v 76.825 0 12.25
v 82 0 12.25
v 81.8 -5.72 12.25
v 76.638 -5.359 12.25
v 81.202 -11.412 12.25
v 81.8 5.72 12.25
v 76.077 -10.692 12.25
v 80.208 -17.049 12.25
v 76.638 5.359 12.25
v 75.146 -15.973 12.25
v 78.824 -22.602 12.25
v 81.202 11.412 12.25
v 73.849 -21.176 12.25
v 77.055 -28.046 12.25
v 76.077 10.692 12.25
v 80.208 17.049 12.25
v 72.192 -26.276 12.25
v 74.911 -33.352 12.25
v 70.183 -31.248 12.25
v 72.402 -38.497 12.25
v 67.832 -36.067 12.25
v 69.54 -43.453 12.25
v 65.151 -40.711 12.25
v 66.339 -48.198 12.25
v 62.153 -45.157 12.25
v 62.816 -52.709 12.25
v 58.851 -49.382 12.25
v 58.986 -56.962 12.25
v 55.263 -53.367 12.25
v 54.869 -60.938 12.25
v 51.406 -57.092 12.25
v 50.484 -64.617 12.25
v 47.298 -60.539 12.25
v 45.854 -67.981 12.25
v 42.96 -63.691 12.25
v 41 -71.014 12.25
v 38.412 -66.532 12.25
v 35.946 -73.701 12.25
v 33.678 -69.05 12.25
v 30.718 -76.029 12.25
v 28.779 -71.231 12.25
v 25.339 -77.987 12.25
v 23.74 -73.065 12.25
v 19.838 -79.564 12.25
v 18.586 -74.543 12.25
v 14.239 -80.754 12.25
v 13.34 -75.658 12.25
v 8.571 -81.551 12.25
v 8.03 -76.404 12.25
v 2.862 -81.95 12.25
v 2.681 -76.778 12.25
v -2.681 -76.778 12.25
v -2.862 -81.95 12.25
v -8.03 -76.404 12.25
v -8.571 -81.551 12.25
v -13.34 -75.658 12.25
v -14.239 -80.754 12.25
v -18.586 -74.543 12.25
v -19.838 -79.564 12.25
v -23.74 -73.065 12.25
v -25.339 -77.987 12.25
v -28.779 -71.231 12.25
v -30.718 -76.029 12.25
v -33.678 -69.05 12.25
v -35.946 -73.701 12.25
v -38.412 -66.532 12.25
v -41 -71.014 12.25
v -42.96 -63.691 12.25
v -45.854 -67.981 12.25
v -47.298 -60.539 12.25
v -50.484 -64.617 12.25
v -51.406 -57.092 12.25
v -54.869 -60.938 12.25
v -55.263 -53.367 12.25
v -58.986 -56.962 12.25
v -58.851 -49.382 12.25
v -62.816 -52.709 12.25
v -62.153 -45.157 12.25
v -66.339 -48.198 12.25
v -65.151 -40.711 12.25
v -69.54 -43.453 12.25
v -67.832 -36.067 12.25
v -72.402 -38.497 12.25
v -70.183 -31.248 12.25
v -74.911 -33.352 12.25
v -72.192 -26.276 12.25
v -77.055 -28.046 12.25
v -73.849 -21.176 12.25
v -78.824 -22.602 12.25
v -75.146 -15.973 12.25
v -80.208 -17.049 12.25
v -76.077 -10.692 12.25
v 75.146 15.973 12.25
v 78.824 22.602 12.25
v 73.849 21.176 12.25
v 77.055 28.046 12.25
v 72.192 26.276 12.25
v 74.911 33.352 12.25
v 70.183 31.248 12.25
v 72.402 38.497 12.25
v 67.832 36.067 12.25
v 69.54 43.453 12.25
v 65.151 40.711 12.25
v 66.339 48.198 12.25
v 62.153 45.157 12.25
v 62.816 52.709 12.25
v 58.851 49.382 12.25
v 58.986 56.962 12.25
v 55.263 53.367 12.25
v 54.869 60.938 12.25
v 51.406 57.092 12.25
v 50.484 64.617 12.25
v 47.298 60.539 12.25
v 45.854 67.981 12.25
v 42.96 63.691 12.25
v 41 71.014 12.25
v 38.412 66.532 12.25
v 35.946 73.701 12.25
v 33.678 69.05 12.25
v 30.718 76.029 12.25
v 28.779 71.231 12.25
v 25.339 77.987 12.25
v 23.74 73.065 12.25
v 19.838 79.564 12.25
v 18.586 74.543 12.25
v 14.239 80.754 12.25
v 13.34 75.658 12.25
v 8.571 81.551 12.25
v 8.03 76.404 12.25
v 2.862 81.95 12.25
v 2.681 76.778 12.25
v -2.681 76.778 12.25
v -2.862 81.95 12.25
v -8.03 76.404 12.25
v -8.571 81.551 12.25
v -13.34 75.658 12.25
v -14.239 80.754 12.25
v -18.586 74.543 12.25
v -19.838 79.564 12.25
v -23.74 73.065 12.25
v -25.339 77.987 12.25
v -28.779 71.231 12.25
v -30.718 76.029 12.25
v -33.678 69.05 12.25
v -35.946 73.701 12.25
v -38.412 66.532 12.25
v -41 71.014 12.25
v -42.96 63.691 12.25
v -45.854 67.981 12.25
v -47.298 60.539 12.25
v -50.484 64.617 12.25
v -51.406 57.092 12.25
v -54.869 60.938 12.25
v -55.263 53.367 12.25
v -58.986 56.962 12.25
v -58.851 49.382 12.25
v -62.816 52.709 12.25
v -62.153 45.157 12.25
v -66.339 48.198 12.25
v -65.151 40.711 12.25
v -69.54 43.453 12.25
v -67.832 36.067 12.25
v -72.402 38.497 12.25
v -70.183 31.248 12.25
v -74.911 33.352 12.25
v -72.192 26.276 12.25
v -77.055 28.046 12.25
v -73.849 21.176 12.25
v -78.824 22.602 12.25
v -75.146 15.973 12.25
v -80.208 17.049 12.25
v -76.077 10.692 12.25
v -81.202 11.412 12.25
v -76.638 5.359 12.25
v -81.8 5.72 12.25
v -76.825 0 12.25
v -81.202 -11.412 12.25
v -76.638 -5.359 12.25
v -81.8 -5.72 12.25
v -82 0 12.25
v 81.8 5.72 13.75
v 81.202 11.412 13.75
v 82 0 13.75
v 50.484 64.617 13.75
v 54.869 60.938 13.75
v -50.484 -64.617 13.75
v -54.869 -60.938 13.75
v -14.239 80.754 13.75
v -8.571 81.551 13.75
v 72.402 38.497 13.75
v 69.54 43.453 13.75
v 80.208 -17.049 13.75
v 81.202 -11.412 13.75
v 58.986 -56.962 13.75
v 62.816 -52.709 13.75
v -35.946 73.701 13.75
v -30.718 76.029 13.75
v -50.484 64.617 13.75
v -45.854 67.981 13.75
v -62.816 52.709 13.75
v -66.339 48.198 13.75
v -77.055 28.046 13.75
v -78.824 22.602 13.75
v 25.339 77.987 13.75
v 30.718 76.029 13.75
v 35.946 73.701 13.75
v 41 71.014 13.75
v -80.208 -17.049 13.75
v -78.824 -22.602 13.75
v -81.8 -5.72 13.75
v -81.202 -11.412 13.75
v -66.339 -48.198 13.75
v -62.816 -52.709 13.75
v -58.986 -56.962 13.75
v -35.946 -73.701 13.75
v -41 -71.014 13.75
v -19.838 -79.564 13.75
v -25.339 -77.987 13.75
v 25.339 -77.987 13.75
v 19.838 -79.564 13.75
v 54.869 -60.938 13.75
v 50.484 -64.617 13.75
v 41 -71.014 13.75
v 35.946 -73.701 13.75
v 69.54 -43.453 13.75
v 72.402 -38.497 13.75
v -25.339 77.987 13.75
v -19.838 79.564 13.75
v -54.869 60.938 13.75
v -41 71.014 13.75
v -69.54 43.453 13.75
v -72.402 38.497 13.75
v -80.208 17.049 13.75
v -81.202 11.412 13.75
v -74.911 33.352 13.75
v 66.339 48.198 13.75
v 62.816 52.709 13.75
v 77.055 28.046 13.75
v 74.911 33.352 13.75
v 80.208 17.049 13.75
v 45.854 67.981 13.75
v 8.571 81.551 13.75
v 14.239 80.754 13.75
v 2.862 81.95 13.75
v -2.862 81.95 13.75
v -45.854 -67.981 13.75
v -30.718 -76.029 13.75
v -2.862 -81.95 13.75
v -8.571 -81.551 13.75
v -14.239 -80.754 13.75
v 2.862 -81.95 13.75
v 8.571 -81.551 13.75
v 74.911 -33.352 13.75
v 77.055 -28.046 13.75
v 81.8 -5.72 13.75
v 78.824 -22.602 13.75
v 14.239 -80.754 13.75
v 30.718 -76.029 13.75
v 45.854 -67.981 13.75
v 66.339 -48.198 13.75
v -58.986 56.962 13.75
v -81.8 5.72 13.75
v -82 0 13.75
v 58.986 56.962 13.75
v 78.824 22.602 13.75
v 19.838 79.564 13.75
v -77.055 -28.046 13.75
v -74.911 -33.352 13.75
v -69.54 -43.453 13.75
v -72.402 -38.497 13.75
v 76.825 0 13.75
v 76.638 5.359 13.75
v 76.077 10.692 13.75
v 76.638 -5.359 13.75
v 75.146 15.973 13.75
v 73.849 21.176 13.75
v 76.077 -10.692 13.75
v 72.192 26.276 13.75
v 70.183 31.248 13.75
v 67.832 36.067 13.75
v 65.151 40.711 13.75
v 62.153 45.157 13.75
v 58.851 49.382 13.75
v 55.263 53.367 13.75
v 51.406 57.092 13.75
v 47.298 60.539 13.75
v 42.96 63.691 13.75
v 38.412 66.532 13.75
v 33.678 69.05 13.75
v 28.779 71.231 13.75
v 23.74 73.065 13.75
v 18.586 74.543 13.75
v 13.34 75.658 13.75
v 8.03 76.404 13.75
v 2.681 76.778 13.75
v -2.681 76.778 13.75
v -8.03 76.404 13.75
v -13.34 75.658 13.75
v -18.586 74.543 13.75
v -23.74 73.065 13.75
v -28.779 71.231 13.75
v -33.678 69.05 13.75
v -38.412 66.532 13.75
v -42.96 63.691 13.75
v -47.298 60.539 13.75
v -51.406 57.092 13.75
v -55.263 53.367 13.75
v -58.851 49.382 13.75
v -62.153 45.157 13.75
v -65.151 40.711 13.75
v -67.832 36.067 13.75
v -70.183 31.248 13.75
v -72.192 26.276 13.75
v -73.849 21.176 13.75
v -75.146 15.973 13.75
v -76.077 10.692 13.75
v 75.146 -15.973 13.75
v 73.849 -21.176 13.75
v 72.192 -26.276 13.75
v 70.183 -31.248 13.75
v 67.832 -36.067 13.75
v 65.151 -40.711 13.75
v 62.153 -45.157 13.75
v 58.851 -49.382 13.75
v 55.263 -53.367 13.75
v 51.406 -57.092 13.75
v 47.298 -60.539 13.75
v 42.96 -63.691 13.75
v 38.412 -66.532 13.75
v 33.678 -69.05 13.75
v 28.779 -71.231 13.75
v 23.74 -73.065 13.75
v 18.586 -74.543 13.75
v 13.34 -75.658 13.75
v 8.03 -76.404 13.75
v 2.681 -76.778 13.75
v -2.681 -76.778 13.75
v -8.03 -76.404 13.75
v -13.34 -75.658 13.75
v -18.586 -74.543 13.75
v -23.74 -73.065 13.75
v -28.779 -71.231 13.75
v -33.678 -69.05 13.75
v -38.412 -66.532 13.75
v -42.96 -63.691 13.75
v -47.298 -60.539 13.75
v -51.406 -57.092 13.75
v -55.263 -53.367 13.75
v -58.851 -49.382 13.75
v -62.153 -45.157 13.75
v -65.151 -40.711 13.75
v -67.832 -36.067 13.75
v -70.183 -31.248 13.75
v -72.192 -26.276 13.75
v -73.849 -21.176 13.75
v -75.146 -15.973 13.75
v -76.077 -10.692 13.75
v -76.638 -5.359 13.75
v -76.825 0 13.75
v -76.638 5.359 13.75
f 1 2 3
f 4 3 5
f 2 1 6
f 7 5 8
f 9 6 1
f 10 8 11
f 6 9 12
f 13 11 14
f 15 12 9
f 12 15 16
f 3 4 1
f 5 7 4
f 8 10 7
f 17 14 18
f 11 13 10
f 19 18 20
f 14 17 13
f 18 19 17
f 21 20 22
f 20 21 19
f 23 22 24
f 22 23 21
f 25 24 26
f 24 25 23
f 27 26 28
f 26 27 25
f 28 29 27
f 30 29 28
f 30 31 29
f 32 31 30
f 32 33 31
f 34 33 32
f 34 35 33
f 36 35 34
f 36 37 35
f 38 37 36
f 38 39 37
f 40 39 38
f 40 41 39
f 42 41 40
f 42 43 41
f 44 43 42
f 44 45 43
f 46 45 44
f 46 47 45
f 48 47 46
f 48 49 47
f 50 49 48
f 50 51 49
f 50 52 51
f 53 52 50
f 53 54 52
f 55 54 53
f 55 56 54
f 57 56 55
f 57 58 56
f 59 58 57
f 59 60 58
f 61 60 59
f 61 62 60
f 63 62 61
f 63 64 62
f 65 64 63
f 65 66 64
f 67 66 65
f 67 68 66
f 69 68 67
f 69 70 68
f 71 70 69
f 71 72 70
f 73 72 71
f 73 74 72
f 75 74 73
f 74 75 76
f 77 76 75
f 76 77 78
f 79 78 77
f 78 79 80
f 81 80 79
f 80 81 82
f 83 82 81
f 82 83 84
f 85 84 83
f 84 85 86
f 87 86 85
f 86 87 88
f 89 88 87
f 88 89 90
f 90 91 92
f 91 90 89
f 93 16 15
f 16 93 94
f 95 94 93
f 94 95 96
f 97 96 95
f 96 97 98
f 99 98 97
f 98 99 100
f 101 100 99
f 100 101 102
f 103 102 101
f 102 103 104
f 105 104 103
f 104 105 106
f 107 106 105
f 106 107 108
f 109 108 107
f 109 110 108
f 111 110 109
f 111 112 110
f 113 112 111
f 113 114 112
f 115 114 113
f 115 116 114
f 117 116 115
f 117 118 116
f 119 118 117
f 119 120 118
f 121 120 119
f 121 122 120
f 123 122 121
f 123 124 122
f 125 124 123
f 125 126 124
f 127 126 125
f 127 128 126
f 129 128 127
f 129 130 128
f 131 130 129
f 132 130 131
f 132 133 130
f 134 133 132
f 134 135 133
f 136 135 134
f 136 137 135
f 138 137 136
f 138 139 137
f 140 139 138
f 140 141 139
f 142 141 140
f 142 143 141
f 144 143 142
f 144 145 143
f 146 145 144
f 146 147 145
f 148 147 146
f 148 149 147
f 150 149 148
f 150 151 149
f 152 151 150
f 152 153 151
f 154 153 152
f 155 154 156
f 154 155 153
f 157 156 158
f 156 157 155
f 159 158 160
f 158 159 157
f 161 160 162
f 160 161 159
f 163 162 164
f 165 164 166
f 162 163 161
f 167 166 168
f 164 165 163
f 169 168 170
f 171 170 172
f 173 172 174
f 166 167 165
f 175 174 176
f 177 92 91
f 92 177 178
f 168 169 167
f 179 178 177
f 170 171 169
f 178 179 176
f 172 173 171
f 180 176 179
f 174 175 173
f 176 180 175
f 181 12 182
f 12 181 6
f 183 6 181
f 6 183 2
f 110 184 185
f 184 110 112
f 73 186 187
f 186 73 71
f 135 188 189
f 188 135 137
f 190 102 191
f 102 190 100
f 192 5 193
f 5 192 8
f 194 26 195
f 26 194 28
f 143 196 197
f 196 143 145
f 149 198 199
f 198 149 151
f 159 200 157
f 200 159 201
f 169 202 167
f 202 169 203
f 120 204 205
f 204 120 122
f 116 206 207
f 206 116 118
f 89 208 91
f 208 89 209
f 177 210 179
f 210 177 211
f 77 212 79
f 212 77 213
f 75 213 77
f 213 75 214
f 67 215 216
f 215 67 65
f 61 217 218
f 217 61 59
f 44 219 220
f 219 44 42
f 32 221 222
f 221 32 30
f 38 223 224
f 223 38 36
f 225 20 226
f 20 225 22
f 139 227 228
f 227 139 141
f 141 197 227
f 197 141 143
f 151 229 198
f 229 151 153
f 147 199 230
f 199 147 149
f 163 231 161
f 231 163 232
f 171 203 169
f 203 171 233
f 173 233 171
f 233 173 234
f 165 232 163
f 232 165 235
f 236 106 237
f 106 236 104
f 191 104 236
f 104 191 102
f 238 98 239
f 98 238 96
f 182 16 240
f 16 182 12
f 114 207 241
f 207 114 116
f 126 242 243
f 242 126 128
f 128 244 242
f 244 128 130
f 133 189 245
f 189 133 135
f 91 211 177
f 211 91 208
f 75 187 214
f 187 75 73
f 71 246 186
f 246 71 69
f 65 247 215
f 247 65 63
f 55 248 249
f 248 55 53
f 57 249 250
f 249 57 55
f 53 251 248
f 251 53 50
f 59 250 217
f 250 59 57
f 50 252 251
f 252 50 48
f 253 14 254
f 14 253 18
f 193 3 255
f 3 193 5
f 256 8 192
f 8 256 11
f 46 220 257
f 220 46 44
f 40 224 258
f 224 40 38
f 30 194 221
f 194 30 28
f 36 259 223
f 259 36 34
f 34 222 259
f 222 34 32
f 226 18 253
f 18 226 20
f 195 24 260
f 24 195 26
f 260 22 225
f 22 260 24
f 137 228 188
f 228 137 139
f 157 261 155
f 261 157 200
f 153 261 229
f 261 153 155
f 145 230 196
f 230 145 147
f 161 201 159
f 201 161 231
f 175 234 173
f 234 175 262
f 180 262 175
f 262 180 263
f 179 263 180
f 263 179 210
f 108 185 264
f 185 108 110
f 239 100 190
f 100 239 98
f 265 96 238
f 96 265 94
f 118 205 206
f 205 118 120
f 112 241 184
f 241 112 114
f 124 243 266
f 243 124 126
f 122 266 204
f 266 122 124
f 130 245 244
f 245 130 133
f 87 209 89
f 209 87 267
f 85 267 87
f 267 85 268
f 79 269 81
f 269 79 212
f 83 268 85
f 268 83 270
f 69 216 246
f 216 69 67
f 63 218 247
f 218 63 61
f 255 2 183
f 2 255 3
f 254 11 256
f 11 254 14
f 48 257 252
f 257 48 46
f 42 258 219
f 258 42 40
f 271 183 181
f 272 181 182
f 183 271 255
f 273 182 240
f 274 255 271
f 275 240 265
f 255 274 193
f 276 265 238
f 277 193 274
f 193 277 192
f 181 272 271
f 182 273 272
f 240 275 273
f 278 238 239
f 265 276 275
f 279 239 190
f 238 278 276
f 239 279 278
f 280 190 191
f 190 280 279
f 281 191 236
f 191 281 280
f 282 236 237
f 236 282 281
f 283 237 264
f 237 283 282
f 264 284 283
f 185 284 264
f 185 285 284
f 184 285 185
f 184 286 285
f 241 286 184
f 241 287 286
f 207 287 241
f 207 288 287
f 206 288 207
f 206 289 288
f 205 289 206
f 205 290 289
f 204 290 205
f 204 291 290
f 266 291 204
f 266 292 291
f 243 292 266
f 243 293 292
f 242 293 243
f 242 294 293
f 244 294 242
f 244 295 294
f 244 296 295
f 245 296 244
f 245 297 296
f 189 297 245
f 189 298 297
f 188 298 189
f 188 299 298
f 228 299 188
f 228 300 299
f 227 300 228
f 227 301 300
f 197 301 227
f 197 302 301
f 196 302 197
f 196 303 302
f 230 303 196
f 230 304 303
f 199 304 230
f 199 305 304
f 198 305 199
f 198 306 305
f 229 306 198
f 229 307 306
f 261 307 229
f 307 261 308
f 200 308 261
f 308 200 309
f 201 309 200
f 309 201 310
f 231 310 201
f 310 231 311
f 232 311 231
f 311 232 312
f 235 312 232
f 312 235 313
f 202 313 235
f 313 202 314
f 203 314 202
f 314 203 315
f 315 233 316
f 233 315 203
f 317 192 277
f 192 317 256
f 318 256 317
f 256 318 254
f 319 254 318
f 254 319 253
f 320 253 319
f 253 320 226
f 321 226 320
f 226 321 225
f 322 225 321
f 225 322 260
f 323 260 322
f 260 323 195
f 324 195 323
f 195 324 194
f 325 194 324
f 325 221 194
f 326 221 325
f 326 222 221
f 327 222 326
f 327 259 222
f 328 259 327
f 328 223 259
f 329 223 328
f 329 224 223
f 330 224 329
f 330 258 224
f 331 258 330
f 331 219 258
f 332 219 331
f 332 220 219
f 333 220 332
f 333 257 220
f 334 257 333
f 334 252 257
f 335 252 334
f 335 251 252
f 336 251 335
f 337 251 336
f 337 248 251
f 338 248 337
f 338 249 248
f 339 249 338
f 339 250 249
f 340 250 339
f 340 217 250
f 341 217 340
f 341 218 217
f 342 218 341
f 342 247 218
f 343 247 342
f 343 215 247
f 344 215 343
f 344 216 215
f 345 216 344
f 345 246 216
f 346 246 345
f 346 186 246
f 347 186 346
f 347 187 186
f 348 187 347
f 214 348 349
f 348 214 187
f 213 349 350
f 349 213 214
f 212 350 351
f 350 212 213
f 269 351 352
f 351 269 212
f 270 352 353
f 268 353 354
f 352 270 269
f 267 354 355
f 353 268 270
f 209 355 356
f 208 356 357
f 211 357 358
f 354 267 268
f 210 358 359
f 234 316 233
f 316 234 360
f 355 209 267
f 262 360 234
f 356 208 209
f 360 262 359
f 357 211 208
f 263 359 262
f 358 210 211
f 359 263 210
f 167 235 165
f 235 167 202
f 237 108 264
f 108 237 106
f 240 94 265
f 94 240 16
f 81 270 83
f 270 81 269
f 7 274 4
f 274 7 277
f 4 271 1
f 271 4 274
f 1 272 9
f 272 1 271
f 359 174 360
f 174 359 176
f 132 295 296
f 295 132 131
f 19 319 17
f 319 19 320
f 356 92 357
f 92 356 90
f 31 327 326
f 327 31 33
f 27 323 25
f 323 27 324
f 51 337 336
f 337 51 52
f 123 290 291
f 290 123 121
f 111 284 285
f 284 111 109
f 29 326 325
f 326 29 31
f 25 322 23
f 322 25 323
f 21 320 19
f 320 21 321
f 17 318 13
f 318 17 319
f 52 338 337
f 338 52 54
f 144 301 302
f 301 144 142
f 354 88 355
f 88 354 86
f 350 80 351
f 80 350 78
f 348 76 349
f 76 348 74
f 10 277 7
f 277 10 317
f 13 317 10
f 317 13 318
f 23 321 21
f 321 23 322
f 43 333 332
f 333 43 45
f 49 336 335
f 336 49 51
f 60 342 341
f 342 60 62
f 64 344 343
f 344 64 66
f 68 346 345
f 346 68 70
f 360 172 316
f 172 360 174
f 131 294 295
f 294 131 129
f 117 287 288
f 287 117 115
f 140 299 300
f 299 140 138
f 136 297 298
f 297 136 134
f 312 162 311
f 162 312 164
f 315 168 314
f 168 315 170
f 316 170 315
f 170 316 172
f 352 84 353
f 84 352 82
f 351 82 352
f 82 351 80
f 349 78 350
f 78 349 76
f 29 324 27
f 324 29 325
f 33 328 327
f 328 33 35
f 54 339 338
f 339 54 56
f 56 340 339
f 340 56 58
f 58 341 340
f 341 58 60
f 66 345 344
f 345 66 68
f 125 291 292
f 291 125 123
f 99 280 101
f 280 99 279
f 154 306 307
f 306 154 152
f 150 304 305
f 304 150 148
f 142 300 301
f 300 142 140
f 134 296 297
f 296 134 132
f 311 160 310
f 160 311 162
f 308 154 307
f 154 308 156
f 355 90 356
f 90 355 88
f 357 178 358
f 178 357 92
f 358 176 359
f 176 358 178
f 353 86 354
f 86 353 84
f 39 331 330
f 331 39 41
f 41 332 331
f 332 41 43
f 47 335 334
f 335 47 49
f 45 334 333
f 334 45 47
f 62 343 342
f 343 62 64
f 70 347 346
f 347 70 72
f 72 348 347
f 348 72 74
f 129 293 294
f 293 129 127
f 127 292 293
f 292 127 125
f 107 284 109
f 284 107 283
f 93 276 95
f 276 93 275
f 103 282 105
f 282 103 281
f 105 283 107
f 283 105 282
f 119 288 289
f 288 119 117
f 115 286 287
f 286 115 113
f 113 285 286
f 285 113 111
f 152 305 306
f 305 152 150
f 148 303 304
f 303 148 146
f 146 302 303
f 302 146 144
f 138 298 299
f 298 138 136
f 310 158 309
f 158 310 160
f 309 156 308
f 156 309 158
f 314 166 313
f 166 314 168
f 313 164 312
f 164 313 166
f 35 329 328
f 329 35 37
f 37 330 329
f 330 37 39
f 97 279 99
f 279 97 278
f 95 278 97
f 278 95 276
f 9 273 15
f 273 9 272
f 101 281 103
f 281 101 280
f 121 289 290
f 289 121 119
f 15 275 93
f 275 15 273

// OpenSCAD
/// @file dynaTestWheelV03
///
/// @brief Wheel/pulley for dynamic testing setup
///
/// Designed to fit this motor on Servo City:
/// 612 RPM HD Premium Planetary Gear Motor w/Encoder
/// https://www.servocity.com/612-rpm-hd-premium-planetary-gear-motor-w-encoder
///
/// Effective dia is 160 mm. Shaft dia 6 mm and shaft D is 5.5 mm high.
///
/// Created 30 Jun 2017
/// Modified 03 Jul 2017 (V02)
/// -reduce material (to 6mm)
/// Modified 03 Jul 2017 (V03)
/// -0.770 hub mount holes
///
/// @author Mustafa Ghazi

// wheel disk
innerDiskDia = 160; // [mm]
innerDiskThickness = 10.75; // [mm]
outerDiskDia = innerDiskDia + 4; // [mm]
outerDiskThickness = 1.5; // [mm]
shaftDDia = 6; // [mm]
shaftDHeight = 5.5; // [mm] 
largeFN = 90;

// hollow out and spokes
hollowInnerDia = shaftDDia + 25.4; // [mm]
hollowOuterDia = innerDiskDia - 25.4/2.0; // [mm]
spokeWidth = 6; // [mm]
spokeHeight = (hollowOuterDia - shaftDDia)/2.0 + (innerDiskDia - hollowOuterDia)/2.0; // [mm]
numSpokes = 12; 

// remove extra material
desiredHubThickness = 6; // [mm]
cavityDia = innerDiskDia - 25.4/4.0; // [mm] 

// hub mount holes
hubHoleDia = 0.06*25.4; // [mm]
hubHolePatternDia = 0.770*25.4; // [mm]

// wheel with reduced hub thickness to fit motor shaft length
difference() {

	// full thickness wheel, with spokes, too thick for motor shaft
	union() {

		difference() {
			union() {
				// solid center disk
				translate([0, 0, outerDiskThickness]) {
					rotate([0, 0,  0]) { 
						linear_extrude(height = innerDiskThickness, center = false, convexity = 10, twist = 0, slices = 20, scale = 1.0) { circle(d=innerDiskDia,$fn=largeFN); }
					}
				}
				
				// solid outer disks
				translate([0, 0, innerDiskThickness + outerDiskThickness]) {
					rotate([0, 0,  0]) { 
						linear_extrude(height = outerDiskThickness, center = false, convexity = 10, twist = 0, slices = 20, scale = 1.0) { circle(d=outerDiskDia,$fn=largeFN); }
					}
				}
				
				translate([0, 0, 0]) {
					rotate([0, 0, 0]) { 
						linear_extrude(height = outerDiskThickness, center = false, convexity = 10, twist = 0, slices = 20, scale = 1.0) { circle(d=outerDiskDia,$fn=largeFN); }
					}
				}
			}


			// D-shaped hole
			difference() {
				// shaft hole
				translate([0, 0, 0]) {
					rotate([0, 0,  0]) { 
						linear_extrude(height = innerDiskThickness + 2*outerDiskThickness, center = false, convexity = 10, twist = 0, slices = 20, scale = 1.0) { circle(d=shaftDDia,$fn=36); }
					}
				}
				/*
				translate([ -shaftDDia/2.0, shaftDHeight-shaftDDia/2.0, 0]) { 
					linear_extrude(height = innerDiskThickness + 2*outerDiskThickness, center = false, convexity = 10, twist = 0, slices = 20, scale = 1.0) { polygon(points = [[0,0],[shaftDDia,0],[shaftDDia,shaftDDia],[0,shaftDDia]], paths = undef, convexity = 1); }
				}
				*/
				

			}
			
			// hollow out disk material
			difference() {
				translate([0, 0, 0]) {
					rotate([0, 0,  0]) { 
						linear_extrude(height = innerDiskThickness + 2*outerDiskThickness, center = false, convexity = 10, twist = 0, slices = 20, scale = 1.0) { circle(d=hollowOuterDia,$fn=largeFN); }
					}
				}
				
				translate([0, 0, 0]) {
					rotate([0, 0,  0]) { 
						linear_extrude(height = innerDiskThickness + 2*outerDiskThickness, center = false, convexity = 10, twist = 0, slices = 20, scale = 1.0) { circle(d=hollowInnerDia,$fn=largeFN); }
					}
				}

			}

		}

		for(count = [1:1:numSpokes]) {
			rotate([0, 0,  count*360/numSpokes]) {
				translate([ -spokeWidth/2, shaftDDia/2.0, 0]) { 
					linear_extrude(height = innerDiskThickness + 2*outerDiskThickness, center = false, convexity = 10, twist = 0, slices = 20, scale = 1.0) { polygon(points = [[0,0],[spokeWidth,0],[spokeWidth,spokeHeight],[0,spokeHeight]], paths = undef, convexity = 1); }
				}
			}
		}

	}

	// remove some material to fit hub on 12 mm length shaft
	translate([0, 0, desiredHubThickness]) {
		rotate([0, 0,  0]) { 
			linear_extrude(height = innerDiskThickness + 2*outerDiskThickness - desiredHubThickness, center = false, convexity = 10, twist = 0, slices = 20, scale = 1.0) { circle(d=cavityDia,$fn=largeFN); }
		}
	}
	
	// 4 X hub mount holes in 0.770 inch pattern
	translate([0, hubHolePatternDia/2.0, 0]) {
		rotate([0, 0,  0]) { 
			linear_extrude(height = innerDiskThickness + 2*outerDiskThickness, center = false, convexity = 10, twist = 0, slices = 20, scale = 1.0) { circle(d=hubHoleDia,$fn=largeFN); }
		}
	}
	
	translate([0, -hubHolePatternDia/2.0, 0]) {
		rotate([0, 0,  0]) { 
			linear_extrude(height = innerDiskThickness + 2*outerDiskThickness, center = false, convexity = 10, twist = 0, slices = 20, scale = 1.0) { circle(d=hubHoleDia,$fn=largeFN); }
		}
	}
	
	translate([hubHolePatternDia/2.0, 0, 0]) {
		rotate([0, 0,  0]) { 
			linear_extrude(height = innerDiskThickness + 2*outerDiskThickness, center = false, convexity = 10, twist = 0, slices = 20, scale = 1.0) { circle(d=hubHoleDia,$fn=largeFN); }
		}
	}
	
	translate([-hubHolePatternDia/2.0, 0, 0]) {
		rotate([0, 0,  0]) { 
			linear_extrude(height = innerDiskThickness + 2*outerDiskThickness, center = false, convexity = 10, twist = 0, slices = 20, scale = 1.0) { circle(d=hubHoleDia,$fn=largeFN); }
		}
	}
	
	// leave only top outer disk	
	translate([0, 0, 0]) {
		rotate([0, 0,  0]) { 
			linear_extrude(height = innerDiskThickness + outerDiskThickness, center = false, convexity = 10, twist = 0, slices = 20, scale = 1.0) { circle(d=outerDiskDia,$fn=largeFN); }
		}
	}

}
